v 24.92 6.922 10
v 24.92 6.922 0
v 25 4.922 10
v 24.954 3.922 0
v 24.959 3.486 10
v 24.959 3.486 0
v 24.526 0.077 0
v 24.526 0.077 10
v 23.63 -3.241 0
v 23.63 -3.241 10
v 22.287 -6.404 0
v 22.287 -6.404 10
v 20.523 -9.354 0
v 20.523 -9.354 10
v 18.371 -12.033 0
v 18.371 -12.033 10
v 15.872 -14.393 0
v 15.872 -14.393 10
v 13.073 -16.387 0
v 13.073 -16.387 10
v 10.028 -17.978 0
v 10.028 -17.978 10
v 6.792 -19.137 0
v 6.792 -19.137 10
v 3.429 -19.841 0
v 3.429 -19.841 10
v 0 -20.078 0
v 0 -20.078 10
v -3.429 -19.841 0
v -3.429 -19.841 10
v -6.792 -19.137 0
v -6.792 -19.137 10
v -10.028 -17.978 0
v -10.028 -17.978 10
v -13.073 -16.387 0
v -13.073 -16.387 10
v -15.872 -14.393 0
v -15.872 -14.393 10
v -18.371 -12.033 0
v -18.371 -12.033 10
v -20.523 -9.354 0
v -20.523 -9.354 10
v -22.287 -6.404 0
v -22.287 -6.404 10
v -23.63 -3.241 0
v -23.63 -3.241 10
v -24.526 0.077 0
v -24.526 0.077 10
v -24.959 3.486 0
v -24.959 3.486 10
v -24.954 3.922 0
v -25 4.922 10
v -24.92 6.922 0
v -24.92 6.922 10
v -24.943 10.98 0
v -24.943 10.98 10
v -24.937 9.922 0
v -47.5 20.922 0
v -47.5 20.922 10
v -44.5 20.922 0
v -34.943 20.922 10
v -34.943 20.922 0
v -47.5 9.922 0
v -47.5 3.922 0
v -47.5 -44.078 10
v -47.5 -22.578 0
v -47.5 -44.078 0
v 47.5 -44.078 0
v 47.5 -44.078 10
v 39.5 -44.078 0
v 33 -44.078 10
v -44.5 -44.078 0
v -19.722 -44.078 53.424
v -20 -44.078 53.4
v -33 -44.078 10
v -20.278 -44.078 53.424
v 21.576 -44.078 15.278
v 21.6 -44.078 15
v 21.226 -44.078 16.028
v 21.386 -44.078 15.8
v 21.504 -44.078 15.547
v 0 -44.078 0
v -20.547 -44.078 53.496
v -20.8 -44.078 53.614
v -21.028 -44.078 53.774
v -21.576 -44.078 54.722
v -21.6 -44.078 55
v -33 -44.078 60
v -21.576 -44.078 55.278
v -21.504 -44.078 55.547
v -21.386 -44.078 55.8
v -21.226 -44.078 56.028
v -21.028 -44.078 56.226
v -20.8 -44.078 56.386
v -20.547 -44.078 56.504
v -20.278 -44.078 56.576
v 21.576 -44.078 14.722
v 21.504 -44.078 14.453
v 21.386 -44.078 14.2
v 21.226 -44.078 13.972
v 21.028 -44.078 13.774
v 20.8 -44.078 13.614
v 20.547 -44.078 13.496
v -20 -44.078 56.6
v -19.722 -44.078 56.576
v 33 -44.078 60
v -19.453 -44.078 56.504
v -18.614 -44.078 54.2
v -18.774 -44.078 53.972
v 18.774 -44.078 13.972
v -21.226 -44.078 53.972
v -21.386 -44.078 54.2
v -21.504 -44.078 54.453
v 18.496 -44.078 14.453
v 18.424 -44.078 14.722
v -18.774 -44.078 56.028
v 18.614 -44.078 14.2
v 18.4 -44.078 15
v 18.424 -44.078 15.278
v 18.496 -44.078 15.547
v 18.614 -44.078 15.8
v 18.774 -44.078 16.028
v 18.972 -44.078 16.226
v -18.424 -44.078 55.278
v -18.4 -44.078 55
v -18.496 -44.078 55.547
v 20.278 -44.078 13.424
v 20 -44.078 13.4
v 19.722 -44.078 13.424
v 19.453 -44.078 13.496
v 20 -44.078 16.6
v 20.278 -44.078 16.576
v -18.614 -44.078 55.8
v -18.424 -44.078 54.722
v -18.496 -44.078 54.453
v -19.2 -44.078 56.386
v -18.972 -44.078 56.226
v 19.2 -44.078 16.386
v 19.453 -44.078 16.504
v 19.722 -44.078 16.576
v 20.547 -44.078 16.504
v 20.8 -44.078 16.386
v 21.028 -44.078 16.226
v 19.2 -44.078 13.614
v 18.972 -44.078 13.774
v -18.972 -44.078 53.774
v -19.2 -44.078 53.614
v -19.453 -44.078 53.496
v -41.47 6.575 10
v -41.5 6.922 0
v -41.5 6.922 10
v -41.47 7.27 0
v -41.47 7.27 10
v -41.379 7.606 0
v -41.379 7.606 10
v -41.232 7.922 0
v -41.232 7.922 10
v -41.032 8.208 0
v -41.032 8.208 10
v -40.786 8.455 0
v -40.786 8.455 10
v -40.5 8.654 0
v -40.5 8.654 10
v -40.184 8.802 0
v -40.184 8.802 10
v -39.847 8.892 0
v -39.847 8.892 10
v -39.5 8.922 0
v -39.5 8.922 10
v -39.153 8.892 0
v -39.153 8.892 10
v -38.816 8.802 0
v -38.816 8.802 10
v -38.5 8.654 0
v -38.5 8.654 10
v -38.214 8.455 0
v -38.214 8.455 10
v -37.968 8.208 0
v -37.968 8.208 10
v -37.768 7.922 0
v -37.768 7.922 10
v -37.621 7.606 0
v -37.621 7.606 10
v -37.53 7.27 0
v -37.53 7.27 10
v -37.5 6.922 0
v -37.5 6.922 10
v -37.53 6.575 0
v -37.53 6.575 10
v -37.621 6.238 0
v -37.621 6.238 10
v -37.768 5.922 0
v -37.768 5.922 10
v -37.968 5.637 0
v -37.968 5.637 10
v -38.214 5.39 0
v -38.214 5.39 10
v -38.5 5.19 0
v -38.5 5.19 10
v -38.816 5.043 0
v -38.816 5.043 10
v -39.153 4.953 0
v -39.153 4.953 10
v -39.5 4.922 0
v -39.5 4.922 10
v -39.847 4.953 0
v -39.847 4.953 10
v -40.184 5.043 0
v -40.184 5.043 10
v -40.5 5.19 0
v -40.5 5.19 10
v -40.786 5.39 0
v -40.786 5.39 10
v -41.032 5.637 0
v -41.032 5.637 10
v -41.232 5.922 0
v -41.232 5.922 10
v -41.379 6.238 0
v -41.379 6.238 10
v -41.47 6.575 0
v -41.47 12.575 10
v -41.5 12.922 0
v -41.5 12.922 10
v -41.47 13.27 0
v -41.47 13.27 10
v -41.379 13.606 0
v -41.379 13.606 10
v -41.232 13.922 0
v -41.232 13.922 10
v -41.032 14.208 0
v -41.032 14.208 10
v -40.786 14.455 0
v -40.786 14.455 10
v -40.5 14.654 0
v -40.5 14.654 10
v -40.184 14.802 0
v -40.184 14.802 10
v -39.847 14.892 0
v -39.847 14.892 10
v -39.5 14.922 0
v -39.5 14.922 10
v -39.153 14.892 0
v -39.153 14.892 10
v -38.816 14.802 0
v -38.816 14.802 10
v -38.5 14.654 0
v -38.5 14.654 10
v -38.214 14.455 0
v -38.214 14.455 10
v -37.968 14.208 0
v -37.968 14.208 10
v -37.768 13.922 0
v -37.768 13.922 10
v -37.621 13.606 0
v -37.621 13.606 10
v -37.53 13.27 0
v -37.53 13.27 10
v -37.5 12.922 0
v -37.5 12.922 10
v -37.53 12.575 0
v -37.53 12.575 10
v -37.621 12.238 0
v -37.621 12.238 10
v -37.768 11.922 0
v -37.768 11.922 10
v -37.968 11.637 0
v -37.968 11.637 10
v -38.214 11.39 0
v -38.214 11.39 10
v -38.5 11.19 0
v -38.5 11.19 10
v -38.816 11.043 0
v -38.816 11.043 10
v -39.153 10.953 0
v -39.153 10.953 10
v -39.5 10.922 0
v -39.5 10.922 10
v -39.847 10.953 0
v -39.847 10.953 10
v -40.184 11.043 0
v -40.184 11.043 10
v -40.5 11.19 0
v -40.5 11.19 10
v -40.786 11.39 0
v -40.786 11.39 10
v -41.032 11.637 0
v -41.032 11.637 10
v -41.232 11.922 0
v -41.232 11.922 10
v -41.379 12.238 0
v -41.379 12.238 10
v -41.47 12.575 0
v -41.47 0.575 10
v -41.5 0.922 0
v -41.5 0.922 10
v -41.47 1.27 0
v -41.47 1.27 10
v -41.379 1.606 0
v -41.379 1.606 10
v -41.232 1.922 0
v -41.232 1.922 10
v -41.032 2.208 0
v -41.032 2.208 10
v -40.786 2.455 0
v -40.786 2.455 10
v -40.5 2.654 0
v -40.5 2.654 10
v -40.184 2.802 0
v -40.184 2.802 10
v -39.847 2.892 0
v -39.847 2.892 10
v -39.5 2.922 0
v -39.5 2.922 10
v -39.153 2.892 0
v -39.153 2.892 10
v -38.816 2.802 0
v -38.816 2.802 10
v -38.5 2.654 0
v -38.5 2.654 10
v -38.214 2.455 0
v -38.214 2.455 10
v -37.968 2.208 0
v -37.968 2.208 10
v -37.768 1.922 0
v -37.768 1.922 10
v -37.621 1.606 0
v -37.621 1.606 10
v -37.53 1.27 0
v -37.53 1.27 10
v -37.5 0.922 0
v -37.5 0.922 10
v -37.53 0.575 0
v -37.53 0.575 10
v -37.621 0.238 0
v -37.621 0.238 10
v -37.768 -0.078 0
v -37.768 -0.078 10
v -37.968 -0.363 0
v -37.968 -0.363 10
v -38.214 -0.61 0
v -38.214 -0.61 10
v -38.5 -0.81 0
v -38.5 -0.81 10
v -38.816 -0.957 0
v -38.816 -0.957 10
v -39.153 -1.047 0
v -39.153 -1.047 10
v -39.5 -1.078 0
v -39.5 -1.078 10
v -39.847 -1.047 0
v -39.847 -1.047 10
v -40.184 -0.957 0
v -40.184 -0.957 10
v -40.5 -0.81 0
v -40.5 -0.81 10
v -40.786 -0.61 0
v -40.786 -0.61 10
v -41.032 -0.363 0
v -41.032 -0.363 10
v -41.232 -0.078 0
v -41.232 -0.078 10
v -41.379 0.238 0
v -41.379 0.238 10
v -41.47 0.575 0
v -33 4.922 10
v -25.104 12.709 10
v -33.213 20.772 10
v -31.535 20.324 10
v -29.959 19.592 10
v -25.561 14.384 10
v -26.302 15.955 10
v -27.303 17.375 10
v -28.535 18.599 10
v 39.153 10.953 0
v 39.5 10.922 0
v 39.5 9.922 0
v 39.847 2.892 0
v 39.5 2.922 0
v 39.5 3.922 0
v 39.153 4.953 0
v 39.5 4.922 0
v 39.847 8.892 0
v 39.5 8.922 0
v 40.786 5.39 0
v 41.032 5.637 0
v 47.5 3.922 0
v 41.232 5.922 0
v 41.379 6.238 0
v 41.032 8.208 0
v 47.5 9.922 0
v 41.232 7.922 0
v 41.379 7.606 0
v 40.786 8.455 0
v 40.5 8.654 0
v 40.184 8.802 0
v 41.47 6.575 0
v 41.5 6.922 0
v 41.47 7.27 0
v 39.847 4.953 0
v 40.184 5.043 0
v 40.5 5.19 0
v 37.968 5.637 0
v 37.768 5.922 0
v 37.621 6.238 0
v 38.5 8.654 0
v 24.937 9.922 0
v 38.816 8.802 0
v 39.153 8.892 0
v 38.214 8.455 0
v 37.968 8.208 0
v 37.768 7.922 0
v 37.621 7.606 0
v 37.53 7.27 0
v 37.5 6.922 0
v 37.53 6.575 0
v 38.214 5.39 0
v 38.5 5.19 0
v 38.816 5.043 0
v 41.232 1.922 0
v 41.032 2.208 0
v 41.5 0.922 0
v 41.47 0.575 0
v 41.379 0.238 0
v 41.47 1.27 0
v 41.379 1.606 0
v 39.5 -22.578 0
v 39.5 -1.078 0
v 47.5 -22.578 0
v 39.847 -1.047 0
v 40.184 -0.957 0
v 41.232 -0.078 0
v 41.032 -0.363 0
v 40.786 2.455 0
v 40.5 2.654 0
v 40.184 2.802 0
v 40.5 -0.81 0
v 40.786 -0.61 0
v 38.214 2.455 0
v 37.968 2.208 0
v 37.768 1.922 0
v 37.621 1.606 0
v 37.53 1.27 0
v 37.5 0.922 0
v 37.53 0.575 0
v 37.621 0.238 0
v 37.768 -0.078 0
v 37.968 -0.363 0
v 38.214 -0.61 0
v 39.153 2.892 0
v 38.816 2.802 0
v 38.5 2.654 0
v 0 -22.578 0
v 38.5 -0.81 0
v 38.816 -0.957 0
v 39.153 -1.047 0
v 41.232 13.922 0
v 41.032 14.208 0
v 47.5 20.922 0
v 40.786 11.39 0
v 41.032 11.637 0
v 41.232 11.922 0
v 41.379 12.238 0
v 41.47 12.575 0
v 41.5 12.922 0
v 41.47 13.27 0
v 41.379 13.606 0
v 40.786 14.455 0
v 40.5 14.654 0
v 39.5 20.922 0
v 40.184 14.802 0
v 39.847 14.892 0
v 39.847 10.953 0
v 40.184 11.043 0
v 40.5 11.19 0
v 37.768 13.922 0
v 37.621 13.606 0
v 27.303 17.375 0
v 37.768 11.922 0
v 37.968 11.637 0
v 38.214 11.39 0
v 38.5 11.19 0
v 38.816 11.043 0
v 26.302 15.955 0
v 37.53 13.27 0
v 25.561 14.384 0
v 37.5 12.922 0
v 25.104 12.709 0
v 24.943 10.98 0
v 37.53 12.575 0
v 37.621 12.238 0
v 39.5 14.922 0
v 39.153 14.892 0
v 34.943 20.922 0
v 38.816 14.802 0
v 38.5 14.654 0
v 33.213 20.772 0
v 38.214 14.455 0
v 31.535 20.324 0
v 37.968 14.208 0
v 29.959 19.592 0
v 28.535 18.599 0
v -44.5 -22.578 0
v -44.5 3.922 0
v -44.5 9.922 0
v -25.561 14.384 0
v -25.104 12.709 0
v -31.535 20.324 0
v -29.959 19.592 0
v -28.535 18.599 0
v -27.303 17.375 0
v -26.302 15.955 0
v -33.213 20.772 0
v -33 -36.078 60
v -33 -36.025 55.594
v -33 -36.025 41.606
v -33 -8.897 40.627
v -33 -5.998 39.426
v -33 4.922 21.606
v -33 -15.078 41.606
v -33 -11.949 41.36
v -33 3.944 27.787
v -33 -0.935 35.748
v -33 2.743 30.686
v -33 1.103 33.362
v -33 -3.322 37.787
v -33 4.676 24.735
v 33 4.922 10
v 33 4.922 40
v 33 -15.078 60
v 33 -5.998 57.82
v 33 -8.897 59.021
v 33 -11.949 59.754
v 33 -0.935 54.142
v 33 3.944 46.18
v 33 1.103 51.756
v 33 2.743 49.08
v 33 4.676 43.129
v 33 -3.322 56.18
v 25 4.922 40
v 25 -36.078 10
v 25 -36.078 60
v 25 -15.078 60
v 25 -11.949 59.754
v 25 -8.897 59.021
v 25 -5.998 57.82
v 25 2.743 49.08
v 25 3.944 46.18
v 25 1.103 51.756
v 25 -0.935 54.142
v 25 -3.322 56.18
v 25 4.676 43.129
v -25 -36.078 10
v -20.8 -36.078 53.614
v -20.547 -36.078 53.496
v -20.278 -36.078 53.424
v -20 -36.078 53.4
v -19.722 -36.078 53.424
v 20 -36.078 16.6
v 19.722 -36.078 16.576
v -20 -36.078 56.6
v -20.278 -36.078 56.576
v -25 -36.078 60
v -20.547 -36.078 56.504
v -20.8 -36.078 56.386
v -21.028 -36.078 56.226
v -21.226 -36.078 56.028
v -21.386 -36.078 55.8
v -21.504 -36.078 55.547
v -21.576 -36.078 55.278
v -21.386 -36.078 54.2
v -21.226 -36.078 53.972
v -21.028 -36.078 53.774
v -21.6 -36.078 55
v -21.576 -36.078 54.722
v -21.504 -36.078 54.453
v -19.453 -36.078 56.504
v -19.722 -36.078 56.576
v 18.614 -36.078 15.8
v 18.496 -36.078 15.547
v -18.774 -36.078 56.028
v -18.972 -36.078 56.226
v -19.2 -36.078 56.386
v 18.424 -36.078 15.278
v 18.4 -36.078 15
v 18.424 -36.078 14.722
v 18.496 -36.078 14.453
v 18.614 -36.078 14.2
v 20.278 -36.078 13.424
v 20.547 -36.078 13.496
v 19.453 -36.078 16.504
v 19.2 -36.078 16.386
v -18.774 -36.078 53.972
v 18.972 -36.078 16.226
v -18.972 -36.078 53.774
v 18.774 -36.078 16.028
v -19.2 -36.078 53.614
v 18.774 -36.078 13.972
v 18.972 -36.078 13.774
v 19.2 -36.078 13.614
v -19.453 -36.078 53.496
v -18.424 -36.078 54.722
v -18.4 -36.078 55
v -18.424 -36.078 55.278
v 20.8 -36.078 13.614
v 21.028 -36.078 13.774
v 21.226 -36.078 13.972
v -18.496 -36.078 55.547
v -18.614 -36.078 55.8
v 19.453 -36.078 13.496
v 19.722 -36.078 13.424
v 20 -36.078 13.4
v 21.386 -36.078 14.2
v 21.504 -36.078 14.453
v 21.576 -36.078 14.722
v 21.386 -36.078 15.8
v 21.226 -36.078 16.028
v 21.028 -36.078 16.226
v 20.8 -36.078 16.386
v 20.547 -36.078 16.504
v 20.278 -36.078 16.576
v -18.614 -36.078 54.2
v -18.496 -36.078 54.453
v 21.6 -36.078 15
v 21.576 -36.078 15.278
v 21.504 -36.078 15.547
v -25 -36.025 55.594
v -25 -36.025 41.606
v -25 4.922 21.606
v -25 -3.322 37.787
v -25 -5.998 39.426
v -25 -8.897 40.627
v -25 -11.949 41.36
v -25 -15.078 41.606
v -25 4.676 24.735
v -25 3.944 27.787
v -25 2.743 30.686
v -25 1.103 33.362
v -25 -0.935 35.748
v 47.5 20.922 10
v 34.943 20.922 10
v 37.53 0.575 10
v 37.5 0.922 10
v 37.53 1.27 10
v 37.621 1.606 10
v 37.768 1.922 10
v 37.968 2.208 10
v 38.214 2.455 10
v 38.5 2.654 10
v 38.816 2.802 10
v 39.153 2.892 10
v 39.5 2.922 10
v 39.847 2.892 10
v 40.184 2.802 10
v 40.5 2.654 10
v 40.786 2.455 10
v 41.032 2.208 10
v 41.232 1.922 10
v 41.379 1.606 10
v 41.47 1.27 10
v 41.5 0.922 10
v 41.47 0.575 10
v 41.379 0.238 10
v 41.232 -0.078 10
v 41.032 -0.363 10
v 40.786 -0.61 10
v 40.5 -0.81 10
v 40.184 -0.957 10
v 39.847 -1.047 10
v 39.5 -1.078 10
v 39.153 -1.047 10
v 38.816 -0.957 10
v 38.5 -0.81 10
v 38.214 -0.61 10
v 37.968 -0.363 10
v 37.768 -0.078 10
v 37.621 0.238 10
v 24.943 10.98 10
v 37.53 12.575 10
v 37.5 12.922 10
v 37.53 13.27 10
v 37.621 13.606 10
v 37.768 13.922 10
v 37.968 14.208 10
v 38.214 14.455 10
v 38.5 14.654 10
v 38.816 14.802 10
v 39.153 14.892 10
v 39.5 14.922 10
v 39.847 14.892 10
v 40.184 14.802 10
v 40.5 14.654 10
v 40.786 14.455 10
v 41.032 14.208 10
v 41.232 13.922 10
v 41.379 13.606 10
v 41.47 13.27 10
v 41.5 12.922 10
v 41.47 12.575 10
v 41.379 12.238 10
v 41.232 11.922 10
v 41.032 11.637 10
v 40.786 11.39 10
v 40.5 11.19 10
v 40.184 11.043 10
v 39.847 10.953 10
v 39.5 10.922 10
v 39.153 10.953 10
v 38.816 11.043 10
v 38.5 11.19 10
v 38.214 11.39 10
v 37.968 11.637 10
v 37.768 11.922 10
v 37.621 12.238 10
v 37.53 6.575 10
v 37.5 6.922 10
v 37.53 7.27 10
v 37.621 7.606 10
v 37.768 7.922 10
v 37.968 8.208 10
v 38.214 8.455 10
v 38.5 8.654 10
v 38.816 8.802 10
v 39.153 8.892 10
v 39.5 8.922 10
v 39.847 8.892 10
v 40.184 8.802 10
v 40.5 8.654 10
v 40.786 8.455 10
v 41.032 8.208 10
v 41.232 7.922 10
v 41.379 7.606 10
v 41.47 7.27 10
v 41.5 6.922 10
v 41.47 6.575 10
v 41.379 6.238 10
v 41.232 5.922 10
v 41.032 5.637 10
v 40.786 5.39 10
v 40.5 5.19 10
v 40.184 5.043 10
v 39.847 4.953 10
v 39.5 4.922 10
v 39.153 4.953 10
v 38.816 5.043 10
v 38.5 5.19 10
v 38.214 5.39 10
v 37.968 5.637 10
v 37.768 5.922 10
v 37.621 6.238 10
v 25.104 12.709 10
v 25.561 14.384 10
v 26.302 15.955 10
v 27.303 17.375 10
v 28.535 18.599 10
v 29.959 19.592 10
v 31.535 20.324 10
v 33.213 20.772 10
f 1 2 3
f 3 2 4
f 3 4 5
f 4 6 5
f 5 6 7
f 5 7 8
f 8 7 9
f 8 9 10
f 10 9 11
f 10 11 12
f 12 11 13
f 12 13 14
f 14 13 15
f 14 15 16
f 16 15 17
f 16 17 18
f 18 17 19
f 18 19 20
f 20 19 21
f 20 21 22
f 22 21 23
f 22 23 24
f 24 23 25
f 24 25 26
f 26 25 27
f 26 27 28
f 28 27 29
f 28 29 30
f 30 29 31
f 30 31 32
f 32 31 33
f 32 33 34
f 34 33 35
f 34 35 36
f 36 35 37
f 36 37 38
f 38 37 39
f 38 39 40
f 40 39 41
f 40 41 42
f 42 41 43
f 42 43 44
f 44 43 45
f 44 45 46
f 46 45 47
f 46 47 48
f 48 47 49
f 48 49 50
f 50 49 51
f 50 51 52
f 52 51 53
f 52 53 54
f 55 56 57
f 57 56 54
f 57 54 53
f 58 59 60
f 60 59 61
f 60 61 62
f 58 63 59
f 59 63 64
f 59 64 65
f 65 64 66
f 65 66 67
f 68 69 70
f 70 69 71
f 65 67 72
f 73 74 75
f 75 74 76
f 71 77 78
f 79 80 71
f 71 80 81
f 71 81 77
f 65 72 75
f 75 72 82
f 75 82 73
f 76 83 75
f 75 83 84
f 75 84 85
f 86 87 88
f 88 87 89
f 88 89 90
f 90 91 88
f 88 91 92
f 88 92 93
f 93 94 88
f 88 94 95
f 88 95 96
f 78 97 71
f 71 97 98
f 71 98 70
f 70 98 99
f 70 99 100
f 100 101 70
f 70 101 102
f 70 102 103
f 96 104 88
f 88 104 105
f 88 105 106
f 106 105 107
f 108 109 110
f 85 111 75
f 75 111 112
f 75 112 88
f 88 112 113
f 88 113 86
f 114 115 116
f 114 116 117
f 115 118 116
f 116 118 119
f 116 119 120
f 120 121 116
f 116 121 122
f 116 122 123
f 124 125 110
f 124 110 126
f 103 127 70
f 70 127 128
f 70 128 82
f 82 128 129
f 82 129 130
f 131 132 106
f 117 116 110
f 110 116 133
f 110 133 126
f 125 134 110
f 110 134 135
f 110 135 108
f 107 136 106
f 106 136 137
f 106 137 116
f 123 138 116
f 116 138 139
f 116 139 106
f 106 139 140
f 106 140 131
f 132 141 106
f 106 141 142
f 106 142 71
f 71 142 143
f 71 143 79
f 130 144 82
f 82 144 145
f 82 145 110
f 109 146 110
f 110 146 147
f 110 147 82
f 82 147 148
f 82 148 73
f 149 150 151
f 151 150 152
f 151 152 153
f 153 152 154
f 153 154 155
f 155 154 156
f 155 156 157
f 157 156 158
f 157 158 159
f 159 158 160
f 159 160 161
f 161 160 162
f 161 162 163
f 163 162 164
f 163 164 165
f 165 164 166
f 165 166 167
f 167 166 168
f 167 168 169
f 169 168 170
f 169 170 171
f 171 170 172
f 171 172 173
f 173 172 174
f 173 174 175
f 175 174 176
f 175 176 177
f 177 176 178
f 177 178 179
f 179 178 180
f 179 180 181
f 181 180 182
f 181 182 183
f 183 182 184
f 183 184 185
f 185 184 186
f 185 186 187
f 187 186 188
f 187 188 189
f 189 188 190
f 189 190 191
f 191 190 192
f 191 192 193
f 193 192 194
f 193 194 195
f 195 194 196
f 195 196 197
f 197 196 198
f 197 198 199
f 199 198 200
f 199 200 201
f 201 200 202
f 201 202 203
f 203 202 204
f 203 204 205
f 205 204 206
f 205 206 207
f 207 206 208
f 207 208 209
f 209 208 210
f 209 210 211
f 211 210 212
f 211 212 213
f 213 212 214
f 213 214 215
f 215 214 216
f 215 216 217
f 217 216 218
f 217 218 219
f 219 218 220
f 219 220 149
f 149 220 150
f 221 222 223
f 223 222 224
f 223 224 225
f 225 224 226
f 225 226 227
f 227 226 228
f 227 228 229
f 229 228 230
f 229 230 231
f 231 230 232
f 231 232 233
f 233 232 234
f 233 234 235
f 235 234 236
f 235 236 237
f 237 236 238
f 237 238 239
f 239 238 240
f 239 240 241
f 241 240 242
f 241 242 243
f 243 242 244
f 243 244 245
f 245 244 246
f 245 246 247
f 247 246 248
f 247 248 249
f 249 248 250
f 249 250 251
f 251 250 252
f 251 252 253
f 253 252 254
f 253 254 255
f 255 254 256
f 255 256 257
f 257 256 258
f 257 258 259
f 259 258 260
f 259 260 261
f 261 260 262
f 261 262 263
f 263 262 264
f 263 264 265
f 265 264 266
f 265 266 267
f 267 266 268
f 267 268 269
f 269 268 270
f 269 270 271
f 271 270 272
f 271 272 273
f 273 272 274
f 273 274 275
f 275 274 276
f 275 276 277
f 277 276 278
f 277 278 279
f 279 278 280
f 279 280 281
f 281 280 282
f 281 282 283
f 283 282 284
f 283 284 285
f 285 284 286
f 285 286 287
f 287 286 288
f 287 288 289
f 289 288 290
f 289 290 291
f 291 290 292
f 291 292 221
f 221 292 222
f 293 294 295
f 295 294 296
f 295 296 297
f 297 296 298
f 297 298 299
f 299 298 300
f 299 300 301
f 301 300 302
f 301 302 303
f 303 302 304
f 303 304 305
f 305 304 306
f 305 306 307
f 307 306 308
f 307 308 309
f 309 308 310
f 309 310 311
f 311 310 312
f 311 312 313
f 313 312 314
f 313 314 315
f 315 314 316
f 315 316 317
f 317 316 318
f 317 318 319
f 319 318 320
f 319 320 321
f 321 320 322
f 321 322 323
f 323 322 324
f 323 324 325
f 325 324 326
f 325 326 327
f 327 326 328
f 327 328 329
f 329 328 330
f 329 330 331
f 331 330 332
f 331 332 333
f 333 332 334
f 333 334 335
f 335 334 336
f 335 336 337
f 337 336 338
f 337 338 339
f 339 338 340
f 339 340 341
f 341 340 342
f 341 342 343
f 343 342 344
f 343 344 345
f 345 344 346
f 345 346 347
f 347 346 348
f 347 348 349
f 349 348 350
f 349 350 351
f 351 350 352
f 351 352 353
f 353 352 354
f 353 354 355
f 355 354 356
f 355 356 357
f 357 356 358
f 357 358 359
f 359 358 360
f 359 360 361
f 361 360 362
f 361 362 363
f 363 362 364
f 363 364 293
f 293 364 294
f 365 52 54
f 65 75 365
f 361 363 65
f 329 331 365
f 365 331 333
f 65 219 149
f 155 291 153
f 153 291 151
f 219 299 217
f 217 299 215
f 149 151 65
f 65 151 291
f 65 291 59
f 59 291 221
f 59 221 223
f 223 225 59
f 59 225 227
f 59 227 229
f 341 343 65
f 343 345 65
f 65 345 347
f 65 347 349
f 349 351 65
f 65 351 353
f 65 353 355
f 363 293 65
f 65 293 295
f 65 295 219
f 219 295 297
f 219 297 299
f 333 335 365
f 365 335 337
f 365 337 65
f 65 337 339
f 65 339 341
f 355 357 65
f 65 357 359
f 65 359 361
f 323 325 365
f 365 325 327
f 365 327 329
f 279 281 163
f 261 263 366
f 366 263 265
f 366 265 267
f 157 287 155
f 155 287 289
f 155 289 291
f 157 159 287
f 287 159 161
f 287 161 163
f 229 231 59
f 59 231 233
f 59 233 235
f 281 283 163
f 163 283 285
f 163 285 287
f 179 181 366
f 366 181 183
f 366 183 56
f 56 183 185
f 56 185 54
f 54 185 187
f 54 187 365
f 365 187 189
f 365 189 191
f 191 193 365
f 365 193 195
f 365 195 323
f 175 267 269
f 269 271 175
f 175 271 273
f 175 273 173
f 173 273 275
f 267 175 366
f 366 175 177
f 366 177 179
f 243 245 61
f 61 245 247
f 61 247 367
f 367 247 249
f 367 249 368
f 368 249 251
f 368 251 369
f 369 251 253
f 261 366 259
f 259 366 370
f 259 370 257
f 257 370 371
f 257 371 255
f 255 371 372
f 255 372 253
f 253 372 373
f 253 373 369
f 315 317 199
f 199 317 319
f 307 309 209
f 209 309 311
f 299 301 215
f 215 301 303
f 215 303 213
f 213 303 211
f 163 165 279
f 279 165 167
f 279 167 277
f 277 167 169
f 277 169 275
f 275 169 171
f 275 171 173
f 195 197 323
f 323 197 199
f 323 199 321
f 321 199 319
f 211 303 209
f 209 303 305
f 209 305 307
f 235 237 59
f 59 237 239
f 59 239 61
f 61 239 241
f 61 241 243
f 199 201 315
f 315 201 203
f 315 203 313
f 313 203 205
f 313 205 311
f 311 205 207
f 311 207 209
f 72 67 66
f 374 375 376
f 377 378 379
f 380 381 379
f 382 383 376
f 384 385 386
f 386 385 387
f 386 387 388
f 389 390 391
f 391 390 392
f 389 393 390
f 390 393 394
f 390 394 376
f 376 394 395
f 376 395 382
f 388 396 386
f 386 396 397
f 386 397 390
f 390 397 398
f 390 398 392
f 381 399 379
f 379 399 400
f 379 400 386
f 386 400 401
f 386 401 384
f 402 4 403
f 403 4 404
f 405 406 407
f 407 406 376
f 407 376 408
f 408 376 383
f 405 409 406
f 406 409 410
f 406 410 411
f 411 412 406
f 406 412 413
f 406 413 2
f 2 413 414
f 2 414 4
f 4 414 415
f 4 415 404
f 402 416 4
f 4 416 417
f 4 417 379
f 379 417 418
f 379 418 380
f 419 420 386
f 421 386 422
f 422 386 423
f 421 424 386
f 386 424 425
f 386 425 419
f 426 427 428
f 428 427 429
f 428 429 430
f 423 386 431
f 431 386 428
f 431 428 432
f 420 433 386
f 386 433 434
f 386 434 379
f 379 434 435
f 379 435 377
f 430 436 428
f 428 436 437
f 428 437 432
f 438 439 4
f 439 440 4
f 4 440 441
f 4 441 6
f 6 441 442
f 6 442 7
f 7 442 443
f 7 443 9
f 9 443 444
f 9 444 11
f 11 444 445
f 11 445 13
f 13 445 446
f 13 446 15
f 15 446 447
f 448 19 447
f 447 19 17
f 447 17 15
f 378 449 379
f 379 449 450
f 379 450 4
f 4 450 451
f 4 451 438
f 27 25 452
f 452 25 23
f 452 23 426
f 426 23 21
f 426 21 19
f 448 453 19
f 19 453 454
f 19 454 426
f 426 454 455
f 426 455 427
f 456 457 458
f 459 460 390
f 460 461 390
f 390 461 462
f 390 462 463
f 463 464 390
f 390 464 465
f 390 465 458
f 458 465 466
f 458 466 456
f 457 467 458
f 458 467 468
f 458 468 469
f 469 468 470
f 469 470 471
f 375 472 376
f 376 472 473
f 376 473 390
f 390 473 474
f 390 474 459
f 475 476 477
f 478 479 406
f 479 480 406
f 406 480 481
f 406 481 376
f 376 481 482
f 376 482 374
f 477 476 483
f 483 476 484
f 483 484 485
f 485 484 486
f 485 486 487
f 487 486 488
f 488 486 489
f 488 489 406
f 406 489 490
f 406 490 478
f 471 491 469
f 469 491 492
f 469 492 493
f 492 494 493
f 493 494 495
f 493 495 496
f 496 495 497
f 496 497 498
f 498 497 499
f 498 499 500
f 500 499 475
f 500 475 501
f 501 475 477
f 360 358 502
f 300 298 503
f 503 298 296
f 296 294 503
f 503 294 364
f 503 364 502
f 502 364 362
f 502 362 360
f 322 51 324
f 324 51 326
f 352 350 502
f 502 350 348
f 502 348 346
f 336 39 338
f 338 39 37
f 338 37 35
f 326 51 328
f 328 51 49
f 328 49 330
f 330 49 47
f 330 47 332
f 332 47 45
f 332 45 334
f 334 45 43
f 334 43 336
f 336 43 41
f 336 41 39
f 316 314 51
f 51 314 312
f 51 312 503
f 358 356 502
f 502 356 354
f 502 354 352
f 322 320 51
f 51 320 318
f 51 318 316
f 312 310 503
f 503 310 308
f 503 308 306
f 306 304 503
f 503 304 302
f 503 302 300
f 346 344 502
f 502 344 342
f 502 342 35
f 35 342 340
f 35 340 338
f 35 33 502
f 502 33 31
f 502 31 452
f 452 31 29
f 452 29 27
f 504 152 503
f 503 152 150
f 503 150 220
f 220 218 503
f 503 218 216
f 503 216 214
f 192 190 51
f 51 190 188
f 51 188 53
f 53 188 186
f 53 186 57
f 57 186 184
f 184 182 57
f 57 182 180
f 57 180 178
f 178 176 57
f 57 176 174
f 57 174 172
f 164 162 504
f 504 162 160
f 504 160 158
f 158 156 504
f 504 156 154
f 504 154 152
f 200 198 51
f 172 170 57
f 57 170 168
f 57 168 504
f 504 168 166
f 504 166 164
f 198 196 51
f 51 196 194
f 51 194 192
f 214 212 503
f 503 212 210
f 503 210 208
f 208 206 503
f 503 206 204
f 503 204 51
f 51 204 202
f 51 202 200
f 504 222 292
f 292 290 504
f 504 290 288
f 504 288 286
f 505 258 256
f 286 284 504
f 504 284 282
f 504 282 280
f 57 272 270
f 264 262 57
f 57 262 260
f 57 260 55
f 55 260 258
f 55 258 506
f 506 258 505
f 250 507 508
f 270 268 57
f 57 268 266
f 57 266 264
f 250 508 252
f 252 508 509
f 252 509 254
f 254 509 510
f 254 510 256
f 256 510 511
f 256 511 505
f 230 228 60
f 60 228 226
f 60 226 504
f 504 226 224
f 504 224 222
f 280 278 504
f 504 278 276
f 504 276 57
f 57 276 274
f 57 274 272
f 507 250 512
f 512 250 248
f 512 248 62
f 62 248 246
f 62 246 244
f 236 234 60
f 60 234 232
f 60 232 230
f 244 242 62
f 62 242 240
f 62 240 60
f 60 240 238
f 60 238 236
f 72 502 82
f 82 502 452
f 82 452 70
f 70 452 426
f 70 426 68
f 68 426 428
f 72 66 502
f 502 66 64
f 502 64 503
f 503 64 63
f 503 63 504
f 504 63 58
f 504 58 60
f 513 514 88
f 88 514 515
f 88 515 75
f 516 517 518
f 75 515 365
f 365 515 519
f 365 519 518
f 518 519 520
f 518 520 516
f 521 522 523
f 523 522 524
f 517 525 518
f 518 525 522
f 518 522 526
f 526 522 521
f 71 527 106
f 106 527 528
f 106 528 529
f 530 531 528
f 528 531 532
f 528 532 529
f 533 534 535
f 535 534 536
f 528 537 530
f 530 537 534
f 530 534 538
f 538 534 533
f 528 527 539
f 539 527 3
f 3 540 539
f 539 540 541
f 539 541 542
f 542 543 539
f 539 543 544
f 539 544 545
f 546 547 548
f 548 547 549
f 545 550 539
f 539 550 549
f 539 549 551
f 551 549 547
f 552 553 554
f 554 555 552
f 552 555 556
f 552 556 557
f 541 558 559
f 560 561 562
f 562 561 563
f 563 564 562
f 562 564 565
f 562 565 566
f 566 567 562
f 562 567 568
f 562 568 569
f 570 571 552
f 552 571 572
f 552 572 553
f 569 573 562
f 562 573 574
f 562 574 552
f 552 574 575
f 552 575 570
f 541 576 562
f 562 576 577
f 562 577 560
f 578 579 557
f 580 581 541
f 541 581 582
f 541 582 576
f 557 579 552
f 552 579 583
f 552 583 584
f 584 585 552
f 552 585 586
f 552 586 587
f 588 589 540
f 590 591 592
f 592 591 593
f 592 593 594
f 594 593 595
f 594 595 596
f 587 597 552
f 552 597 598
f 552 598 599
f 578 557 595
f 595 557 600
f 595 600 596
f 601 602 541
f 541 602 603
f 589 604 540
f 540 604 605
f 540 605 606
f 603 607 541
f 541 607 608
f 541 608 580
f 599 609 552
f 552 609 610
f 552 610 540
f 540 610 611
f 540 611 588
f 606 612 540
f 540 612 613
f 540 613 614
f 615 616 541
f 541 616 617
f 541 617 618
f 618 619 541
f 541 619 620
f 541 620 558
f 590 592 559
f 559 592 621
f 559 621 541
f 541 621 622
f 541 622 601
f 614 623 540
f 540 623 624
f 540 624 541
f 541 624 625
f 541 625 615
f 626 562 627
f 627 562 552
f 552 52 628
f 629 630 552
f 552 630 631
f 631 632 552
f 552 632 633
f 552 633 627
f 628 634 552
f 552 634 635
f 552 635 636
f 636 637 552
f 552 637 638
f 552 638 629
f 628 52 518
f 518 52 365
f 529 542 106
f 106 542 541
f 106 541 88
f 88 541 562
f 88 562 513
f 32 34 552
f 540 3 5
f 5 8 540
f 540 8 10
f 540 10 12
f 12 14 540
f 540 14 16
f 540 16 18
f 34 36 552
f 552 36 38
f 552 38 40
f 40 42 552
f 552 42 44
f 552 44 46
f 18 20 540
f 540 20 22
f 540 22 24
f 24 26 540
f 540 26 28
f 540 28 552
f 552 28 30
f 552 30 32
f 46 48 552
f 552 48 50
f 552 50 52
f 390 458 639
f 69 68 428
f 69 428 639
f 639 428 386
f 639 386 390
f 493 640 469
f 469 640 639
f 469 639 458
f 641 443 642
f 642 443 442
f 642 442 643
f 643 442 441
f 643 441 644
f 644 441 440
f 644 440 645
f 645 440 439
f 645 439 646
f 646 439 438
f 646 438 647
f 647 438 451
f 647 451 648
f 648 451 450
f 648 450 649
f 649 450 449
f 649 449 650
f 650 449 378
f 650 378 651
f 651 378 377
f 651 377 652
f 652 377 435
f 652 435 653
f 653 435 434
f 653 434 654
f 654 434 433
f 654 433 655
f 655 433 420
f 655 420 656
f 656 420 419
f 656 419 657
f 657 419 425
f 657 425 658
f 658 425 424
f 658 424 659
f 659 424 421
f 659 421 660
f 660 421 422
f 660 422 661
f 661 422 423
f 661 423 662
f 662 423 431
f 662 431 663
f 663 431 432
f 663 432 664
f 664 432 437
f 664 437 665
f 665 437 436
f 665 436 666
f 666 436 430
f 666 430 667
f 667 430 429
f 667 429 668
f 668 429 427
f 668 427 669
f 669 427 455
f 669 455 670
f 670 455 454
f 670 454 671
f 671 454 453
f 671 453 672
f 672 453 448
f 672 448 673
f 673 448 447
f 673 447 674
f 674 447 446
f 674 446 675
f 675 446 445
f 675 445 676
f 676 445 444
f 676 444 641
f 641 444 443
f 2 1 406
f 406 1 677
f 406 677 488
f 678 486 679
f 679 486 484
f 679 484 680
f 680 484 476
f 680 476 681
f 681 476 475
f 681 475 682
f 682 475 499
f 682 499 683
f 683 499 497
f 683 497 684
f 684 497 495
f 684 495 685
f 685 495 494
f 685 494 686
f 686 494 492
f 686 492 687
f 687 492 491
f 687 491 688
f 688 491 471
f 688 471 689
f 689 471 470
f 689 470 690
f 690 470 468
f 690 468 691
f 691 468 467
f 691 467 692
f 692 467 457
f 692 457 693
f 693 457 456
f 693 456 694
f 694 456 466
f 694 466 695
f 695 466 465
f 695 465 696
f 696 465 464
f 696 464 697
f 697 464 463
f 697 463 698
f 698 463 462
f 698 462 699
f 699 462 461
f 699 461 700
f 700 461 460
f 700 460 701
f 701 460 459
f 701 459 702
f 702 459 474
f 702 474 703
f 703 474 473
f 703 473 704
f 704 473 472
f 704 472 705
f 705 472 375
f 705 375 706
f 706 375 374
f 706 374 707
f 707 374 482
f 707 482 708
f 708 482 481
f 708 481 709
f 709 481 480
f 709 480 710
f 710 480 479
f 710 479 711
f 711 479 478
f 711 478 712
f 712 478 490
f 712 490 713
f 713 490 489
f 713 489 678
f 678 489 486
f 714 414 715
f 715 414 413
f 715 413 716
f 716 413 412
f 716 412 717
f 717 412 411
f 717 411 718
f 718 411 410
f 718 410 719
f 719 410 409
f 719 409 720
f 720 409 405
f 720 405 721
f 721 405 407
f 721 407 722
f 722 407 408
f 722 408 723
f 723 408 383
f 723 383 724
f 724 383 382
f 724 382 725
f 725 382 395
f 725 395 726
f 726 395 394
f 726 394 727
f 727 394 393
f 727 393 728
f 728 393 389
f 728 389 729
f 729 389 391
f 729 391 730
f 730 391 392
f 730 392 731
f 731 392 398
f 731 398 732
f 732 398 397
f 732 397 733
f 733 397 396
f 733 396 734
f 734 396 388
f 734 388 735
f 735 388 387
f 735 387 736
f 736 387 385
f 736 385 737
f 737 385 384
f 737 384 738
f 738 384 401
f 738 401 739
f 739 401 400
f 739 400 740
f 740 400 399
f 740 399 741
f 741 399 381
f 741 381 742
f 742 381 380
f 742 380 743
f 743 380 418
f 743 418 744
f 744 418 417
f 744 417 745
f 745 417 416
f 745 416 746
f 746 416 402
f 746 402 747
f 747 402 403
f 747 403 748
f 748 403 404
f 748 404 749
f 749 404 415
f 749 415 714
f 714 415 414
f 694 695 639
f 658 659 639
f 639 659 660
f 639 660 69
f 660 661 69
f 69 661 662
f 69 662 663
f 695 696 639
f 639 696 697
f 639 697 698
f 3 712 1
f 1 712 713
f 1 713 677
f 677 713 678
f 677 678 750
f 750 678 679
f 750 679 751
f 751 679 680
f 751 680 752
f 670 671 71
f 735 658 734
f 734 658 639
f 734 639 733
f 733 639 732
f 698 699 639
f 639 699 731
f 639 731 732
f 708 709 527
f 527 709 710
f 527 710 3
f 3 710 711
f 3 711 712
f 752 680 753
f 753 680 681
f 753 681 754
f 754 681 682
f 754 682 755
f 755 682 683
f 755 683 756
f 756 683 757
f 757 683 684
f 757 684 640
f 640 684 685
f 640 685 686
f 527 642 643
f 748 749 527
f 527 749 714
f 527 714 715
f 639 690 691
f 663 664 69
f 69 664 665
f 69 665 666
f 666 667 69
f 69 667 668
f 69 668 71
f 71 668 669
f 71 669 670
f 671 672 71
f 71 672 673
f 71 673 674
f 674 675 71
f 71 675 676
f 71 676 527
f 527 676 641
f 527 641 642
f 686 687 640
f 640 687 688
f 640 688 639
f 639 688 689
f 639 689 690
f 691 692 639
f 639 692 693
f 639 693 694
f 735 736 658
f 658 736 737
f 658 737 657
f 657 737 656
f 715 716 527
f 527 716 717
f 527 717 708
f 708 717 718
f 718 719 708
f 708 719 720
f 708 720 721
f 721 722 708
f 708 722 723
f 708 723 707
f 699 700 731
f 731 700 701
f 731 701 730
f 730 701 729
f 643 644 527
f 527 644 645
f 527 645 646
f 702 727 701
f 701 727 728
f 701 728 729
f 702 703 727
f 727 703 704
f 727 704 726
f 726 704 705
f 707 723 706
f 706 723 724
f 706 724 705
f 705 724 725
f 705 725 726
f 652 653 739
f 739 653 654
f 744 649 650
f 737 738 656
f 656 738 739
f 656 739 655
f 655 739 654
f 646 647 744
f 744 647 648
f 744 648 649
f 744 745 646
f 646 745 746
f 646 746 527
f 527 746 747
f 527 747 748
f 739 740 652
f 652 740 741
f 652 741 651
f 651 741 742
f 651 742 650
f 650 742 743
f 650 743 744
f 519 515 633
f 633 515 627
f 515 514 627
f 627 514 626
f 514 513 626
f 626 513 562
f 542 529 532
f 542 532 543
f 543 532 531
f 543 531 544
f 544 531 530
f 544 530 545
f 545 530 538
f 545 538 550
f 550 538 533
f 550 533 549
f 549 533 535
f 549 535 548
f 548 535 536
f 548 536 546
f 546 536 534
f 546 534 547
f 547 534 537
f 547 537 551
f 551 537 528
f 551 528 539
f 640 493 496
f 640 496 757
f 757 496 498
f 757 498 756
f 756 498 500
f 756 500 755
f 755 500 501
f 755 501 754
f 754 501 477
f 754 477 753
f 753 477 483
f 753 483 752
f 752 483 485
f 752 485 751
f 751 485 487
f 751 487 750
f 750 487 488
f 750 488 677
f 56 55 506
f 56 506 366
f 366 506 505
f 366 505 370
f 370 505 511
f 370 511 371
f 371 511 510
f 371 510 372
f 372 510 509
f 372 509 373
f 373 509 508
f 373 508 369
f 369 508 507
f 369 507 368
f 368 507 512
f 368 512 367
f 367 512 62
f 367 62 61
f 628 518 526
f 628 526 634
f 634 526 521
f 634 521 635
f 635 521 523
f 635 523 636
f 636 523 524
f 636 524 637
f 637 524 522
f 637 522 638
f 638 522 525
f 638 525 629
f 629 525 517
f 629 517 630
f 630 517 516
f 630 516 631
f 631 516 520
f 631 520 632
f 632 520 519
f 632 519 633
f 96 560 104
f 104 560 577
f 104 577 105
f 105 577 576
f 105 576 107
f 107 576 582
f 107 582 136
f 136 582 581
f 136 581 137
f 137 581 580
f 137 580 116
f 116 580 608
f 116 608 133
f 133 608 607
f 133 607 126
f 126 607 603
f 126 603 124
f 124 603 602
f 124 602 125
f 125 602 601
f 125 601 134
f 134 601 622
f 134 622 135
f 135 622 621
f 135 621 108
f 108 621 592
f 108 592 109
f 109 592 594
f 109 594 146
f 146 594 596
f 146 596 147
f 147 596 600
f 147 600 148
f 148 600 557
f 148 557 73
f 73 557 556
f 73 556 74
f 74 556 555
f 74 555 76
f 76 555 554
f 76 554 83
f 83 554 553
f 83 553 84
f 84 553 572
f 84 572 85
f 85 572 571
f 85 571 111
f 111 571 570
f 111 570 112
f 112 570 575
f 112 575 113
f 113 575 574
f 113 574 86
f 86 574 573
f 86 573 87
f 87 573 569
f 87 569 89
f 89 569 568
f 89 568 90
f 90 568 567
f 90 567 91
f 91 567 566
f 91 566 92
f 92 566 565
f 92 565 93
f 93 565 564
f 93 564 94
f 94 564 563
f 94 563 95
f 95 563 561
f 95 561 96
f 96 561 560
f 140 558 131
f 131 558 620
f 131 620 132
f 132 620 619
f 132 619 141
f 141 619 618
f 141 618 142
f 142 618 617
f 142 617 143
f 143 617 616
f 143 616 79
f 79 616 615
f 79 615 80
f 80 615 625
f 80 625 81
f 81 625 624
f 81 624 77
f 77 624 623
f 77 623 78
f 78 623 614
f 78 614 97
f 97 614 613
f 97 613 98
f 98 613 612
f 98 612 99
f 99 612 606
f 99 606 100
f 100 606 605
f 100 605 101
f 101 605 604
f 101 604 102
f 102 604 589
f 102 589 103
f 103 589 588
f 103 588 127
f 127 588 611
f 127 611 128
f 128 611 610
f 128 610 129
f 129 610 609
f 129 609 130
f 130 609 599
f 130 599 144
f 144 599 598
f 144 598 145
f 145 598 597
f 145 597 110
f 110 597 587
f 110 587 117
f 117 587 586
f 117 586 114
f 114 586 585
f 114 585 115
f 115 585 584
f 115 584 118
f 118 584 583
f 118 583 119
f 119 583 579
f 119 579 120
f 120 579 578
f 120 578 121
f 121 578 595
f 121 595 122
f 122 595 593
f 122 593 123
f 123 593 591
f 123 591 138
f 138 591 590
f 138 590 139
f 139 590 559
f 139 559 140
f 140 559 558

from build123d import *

# Parameters (mm, degrees)
SKETCH1_R             = 2
BOSS_EXTRUDE2_DEPTH   = 10
BOSS_EXTRUDE2_2_DEPTH = 10
BOSS_EXTRUDE2_3_DEPTH = 10
BOSS_EXTRUDE3_DEPTH   = 60
CUT_EXTRUDE1_REACH    = 111.65
FILLET3_R             = 20
FILLET4_R             = 10
FILLET5_R             = 20
SKETCH3_R             = 1.6
CUT_EXTRUDE3_DEPTH    = 96.421433651


with BuildPart() as part:
    # Sketch1 → Boss-Extrude2 (new body)
    with BuildSketch(Plane.XY):
        with BuildLine():
            Line((-47.5, 20.92242842), (-47.5, -44.07757158))
            Line((-47.5, -44.07757158), (-33, -44.07757158))
            Line((-33, -44.07757158), (-33, 4.92242842))
            Line((-33, 4.92242842), (-25, 4.92242842))
            ThreePointArc((-25, 4.92242842), (-24.979959865, 5.923230668), (-24.919871589, 6.92242842))
            Line((-24.919871589, 6.92242842), (-25, 20.92242842))
            Line((-25, 20.92242842), (-47.5, 20.92242842))
        make_face()
        with Locations((-39.5, 0.92242842)):
            Circle(SKETCH1_R, mode=Mode.SUBTRACT)
        with Locations((-39.5, 6.92242842)):
            Circle(SKETCH1_R, mode=Mode.SUBTRACT)
        with Locations((-39.5, 12.92242842)):
            Circle(SKETCH1_R, mode=Mode.SUBTRACT)
    extrude(amount=BOSS_EXTRUDE2_DEPTH)



with BuildPart() as body_2:
    # Sketch1 → Boss-Extrude2 2 (new body)
    with BuildSketch(Plane.XY):
        with BuildLine():
            Line((33, 4.92242842), (33, -44.07757158))
            Line((33, -44.07757158), (47.5, -44.07757158))
            Line((47.5, -44.07757158), (47.5, 20.92242842))
            Line((47.5, 20.92242842), (25, 20.92242842))
            Line((25, 20.92242842), (24.919871589, 6.92242842))
            ThreePointArc((24.919871589, 6.92242842), (24.979959865, 5.923230668), (25, 4.92242842))
            Line((25, 4.92242842), (33, 4.92242842))
        make_face()
        with Locations((39.5, 0.92242842)):
            Circle(SKETCH1_R, mode=Mode.SUBTRACT)
        with Locations((39.5, 6.92242842)):
            Circle(SKETCH1_R, mode=Mode.SUBTRACT)
        with Locations((39.5, 12.92242842)):
            Circle(SKETCH1_R, mode=Mode.SUBTRACT)
    extrude(amount=BOSS_EXTRUDE2_2_DEPTH)


with BuildPart() as body_3:
    # Sketch1 → Boss-Extrude2 3 (new body)
    with BuildSketch(Plane.XY):
        with BuildLine():
            ThreePointArc((25, 4.92242842), (0, -20.07757158), (-25, 4.92242842))
            Line((-25, 4.92242842), (-25, -36.07757158))
            Line((-25, -36.07757158), (25, -36.07757158))
            Line((25, -36.07757158), (25, 4.92242842))
        make_face()
    extrude(amount=BOSS_EXTRUDE2_3_DEPTH)


with BuildPart() as part_1:
    add(part.part)

    add(body_2.part)  # Boss-Extrude3 merges body 2

    add(body_3.part)  # Boss-Extrude3 merges body 3
    # Sketch1<8> → Boss-Extrude3 (add)
    with BuildSketch(Plane.XY):
        Polygon((-33, -44.07757158), (33, -44.07757158), (33, 4.92242842), (25, 4.92242842), (25, -36.07757158), (-25, -36.07757158), (-25, 4.92242842), (-33, 4.92242842), align=None)
    extrude(amount=BOSS_EXTRUDE3_DEPTH)

    # Sketch2 → Cut-Extrude1 (cut, up to next)
    with BuildSketch(Plane.ZY.offset(33), mode=Mode.PRIVATE) as cut_extrude1_sk1:
        Polygon((41.60617838, -22.329937261), (41.60617838, 4.92242842), (60, 4.92242842), (60, -36.07757158), (55.59382162, -36.025205899), (41.60617838, -36.025205899), align=None)
    cut_extrude1_tool1 = extrude(cut_extrude1_sk1.sketch, amount=-CUT_EXTRUDE1_REACH, mode=Mode.PRIVATE) & part_1.part
    add(cut_extrude1_tool1.solids().sort_by_distance((-33, -15.554527, 50.804273))[0], mode=Mode.SUBTRACT)

    # Fillet3
    fillet3_edges = [part_1.edges().sort_by_distance(p)[0] for p in [
        (29, 4.92242842, 60),
    ]]
    fillet(fillet3_edges, radius=FILLET3_R)

    # Fillet4
    fillet4_edges = [part_1.edges().sort_by_distance(p)[0] for p in [
        (25, 20.92242842, 5),
        (-25, 20.92242842, 5),
    ]]
    fillet(fillet4_edges, radius=FILLET4_R)

    # Fillet5
    fillet5_edges = [part_1.edges().sort_by_distance(p)[0] for p in [
        (-29, 4.92242842, 41.60617838),
    ]]
    fillet(fillet5_edges, radius=FILLET5_R)

    # Sketch3 → Cut-Extrude3 (cut, through all)
    with BuildSketch(Plane(origin=(0, -36.07757158, 0), x_dir=(1, 0, 0), z_dir=(0, 1, 0))):
        with Locations((-20, -55)):
            Circle(SKETCH3_R)
        with Locations((20, -15)):
            Circle(SKETCH3_R)
    extrude(amount=-CUT_EXTRUDE3_DEPTH, mode=Mode.SUBTRACT)


solid = part_1.part
